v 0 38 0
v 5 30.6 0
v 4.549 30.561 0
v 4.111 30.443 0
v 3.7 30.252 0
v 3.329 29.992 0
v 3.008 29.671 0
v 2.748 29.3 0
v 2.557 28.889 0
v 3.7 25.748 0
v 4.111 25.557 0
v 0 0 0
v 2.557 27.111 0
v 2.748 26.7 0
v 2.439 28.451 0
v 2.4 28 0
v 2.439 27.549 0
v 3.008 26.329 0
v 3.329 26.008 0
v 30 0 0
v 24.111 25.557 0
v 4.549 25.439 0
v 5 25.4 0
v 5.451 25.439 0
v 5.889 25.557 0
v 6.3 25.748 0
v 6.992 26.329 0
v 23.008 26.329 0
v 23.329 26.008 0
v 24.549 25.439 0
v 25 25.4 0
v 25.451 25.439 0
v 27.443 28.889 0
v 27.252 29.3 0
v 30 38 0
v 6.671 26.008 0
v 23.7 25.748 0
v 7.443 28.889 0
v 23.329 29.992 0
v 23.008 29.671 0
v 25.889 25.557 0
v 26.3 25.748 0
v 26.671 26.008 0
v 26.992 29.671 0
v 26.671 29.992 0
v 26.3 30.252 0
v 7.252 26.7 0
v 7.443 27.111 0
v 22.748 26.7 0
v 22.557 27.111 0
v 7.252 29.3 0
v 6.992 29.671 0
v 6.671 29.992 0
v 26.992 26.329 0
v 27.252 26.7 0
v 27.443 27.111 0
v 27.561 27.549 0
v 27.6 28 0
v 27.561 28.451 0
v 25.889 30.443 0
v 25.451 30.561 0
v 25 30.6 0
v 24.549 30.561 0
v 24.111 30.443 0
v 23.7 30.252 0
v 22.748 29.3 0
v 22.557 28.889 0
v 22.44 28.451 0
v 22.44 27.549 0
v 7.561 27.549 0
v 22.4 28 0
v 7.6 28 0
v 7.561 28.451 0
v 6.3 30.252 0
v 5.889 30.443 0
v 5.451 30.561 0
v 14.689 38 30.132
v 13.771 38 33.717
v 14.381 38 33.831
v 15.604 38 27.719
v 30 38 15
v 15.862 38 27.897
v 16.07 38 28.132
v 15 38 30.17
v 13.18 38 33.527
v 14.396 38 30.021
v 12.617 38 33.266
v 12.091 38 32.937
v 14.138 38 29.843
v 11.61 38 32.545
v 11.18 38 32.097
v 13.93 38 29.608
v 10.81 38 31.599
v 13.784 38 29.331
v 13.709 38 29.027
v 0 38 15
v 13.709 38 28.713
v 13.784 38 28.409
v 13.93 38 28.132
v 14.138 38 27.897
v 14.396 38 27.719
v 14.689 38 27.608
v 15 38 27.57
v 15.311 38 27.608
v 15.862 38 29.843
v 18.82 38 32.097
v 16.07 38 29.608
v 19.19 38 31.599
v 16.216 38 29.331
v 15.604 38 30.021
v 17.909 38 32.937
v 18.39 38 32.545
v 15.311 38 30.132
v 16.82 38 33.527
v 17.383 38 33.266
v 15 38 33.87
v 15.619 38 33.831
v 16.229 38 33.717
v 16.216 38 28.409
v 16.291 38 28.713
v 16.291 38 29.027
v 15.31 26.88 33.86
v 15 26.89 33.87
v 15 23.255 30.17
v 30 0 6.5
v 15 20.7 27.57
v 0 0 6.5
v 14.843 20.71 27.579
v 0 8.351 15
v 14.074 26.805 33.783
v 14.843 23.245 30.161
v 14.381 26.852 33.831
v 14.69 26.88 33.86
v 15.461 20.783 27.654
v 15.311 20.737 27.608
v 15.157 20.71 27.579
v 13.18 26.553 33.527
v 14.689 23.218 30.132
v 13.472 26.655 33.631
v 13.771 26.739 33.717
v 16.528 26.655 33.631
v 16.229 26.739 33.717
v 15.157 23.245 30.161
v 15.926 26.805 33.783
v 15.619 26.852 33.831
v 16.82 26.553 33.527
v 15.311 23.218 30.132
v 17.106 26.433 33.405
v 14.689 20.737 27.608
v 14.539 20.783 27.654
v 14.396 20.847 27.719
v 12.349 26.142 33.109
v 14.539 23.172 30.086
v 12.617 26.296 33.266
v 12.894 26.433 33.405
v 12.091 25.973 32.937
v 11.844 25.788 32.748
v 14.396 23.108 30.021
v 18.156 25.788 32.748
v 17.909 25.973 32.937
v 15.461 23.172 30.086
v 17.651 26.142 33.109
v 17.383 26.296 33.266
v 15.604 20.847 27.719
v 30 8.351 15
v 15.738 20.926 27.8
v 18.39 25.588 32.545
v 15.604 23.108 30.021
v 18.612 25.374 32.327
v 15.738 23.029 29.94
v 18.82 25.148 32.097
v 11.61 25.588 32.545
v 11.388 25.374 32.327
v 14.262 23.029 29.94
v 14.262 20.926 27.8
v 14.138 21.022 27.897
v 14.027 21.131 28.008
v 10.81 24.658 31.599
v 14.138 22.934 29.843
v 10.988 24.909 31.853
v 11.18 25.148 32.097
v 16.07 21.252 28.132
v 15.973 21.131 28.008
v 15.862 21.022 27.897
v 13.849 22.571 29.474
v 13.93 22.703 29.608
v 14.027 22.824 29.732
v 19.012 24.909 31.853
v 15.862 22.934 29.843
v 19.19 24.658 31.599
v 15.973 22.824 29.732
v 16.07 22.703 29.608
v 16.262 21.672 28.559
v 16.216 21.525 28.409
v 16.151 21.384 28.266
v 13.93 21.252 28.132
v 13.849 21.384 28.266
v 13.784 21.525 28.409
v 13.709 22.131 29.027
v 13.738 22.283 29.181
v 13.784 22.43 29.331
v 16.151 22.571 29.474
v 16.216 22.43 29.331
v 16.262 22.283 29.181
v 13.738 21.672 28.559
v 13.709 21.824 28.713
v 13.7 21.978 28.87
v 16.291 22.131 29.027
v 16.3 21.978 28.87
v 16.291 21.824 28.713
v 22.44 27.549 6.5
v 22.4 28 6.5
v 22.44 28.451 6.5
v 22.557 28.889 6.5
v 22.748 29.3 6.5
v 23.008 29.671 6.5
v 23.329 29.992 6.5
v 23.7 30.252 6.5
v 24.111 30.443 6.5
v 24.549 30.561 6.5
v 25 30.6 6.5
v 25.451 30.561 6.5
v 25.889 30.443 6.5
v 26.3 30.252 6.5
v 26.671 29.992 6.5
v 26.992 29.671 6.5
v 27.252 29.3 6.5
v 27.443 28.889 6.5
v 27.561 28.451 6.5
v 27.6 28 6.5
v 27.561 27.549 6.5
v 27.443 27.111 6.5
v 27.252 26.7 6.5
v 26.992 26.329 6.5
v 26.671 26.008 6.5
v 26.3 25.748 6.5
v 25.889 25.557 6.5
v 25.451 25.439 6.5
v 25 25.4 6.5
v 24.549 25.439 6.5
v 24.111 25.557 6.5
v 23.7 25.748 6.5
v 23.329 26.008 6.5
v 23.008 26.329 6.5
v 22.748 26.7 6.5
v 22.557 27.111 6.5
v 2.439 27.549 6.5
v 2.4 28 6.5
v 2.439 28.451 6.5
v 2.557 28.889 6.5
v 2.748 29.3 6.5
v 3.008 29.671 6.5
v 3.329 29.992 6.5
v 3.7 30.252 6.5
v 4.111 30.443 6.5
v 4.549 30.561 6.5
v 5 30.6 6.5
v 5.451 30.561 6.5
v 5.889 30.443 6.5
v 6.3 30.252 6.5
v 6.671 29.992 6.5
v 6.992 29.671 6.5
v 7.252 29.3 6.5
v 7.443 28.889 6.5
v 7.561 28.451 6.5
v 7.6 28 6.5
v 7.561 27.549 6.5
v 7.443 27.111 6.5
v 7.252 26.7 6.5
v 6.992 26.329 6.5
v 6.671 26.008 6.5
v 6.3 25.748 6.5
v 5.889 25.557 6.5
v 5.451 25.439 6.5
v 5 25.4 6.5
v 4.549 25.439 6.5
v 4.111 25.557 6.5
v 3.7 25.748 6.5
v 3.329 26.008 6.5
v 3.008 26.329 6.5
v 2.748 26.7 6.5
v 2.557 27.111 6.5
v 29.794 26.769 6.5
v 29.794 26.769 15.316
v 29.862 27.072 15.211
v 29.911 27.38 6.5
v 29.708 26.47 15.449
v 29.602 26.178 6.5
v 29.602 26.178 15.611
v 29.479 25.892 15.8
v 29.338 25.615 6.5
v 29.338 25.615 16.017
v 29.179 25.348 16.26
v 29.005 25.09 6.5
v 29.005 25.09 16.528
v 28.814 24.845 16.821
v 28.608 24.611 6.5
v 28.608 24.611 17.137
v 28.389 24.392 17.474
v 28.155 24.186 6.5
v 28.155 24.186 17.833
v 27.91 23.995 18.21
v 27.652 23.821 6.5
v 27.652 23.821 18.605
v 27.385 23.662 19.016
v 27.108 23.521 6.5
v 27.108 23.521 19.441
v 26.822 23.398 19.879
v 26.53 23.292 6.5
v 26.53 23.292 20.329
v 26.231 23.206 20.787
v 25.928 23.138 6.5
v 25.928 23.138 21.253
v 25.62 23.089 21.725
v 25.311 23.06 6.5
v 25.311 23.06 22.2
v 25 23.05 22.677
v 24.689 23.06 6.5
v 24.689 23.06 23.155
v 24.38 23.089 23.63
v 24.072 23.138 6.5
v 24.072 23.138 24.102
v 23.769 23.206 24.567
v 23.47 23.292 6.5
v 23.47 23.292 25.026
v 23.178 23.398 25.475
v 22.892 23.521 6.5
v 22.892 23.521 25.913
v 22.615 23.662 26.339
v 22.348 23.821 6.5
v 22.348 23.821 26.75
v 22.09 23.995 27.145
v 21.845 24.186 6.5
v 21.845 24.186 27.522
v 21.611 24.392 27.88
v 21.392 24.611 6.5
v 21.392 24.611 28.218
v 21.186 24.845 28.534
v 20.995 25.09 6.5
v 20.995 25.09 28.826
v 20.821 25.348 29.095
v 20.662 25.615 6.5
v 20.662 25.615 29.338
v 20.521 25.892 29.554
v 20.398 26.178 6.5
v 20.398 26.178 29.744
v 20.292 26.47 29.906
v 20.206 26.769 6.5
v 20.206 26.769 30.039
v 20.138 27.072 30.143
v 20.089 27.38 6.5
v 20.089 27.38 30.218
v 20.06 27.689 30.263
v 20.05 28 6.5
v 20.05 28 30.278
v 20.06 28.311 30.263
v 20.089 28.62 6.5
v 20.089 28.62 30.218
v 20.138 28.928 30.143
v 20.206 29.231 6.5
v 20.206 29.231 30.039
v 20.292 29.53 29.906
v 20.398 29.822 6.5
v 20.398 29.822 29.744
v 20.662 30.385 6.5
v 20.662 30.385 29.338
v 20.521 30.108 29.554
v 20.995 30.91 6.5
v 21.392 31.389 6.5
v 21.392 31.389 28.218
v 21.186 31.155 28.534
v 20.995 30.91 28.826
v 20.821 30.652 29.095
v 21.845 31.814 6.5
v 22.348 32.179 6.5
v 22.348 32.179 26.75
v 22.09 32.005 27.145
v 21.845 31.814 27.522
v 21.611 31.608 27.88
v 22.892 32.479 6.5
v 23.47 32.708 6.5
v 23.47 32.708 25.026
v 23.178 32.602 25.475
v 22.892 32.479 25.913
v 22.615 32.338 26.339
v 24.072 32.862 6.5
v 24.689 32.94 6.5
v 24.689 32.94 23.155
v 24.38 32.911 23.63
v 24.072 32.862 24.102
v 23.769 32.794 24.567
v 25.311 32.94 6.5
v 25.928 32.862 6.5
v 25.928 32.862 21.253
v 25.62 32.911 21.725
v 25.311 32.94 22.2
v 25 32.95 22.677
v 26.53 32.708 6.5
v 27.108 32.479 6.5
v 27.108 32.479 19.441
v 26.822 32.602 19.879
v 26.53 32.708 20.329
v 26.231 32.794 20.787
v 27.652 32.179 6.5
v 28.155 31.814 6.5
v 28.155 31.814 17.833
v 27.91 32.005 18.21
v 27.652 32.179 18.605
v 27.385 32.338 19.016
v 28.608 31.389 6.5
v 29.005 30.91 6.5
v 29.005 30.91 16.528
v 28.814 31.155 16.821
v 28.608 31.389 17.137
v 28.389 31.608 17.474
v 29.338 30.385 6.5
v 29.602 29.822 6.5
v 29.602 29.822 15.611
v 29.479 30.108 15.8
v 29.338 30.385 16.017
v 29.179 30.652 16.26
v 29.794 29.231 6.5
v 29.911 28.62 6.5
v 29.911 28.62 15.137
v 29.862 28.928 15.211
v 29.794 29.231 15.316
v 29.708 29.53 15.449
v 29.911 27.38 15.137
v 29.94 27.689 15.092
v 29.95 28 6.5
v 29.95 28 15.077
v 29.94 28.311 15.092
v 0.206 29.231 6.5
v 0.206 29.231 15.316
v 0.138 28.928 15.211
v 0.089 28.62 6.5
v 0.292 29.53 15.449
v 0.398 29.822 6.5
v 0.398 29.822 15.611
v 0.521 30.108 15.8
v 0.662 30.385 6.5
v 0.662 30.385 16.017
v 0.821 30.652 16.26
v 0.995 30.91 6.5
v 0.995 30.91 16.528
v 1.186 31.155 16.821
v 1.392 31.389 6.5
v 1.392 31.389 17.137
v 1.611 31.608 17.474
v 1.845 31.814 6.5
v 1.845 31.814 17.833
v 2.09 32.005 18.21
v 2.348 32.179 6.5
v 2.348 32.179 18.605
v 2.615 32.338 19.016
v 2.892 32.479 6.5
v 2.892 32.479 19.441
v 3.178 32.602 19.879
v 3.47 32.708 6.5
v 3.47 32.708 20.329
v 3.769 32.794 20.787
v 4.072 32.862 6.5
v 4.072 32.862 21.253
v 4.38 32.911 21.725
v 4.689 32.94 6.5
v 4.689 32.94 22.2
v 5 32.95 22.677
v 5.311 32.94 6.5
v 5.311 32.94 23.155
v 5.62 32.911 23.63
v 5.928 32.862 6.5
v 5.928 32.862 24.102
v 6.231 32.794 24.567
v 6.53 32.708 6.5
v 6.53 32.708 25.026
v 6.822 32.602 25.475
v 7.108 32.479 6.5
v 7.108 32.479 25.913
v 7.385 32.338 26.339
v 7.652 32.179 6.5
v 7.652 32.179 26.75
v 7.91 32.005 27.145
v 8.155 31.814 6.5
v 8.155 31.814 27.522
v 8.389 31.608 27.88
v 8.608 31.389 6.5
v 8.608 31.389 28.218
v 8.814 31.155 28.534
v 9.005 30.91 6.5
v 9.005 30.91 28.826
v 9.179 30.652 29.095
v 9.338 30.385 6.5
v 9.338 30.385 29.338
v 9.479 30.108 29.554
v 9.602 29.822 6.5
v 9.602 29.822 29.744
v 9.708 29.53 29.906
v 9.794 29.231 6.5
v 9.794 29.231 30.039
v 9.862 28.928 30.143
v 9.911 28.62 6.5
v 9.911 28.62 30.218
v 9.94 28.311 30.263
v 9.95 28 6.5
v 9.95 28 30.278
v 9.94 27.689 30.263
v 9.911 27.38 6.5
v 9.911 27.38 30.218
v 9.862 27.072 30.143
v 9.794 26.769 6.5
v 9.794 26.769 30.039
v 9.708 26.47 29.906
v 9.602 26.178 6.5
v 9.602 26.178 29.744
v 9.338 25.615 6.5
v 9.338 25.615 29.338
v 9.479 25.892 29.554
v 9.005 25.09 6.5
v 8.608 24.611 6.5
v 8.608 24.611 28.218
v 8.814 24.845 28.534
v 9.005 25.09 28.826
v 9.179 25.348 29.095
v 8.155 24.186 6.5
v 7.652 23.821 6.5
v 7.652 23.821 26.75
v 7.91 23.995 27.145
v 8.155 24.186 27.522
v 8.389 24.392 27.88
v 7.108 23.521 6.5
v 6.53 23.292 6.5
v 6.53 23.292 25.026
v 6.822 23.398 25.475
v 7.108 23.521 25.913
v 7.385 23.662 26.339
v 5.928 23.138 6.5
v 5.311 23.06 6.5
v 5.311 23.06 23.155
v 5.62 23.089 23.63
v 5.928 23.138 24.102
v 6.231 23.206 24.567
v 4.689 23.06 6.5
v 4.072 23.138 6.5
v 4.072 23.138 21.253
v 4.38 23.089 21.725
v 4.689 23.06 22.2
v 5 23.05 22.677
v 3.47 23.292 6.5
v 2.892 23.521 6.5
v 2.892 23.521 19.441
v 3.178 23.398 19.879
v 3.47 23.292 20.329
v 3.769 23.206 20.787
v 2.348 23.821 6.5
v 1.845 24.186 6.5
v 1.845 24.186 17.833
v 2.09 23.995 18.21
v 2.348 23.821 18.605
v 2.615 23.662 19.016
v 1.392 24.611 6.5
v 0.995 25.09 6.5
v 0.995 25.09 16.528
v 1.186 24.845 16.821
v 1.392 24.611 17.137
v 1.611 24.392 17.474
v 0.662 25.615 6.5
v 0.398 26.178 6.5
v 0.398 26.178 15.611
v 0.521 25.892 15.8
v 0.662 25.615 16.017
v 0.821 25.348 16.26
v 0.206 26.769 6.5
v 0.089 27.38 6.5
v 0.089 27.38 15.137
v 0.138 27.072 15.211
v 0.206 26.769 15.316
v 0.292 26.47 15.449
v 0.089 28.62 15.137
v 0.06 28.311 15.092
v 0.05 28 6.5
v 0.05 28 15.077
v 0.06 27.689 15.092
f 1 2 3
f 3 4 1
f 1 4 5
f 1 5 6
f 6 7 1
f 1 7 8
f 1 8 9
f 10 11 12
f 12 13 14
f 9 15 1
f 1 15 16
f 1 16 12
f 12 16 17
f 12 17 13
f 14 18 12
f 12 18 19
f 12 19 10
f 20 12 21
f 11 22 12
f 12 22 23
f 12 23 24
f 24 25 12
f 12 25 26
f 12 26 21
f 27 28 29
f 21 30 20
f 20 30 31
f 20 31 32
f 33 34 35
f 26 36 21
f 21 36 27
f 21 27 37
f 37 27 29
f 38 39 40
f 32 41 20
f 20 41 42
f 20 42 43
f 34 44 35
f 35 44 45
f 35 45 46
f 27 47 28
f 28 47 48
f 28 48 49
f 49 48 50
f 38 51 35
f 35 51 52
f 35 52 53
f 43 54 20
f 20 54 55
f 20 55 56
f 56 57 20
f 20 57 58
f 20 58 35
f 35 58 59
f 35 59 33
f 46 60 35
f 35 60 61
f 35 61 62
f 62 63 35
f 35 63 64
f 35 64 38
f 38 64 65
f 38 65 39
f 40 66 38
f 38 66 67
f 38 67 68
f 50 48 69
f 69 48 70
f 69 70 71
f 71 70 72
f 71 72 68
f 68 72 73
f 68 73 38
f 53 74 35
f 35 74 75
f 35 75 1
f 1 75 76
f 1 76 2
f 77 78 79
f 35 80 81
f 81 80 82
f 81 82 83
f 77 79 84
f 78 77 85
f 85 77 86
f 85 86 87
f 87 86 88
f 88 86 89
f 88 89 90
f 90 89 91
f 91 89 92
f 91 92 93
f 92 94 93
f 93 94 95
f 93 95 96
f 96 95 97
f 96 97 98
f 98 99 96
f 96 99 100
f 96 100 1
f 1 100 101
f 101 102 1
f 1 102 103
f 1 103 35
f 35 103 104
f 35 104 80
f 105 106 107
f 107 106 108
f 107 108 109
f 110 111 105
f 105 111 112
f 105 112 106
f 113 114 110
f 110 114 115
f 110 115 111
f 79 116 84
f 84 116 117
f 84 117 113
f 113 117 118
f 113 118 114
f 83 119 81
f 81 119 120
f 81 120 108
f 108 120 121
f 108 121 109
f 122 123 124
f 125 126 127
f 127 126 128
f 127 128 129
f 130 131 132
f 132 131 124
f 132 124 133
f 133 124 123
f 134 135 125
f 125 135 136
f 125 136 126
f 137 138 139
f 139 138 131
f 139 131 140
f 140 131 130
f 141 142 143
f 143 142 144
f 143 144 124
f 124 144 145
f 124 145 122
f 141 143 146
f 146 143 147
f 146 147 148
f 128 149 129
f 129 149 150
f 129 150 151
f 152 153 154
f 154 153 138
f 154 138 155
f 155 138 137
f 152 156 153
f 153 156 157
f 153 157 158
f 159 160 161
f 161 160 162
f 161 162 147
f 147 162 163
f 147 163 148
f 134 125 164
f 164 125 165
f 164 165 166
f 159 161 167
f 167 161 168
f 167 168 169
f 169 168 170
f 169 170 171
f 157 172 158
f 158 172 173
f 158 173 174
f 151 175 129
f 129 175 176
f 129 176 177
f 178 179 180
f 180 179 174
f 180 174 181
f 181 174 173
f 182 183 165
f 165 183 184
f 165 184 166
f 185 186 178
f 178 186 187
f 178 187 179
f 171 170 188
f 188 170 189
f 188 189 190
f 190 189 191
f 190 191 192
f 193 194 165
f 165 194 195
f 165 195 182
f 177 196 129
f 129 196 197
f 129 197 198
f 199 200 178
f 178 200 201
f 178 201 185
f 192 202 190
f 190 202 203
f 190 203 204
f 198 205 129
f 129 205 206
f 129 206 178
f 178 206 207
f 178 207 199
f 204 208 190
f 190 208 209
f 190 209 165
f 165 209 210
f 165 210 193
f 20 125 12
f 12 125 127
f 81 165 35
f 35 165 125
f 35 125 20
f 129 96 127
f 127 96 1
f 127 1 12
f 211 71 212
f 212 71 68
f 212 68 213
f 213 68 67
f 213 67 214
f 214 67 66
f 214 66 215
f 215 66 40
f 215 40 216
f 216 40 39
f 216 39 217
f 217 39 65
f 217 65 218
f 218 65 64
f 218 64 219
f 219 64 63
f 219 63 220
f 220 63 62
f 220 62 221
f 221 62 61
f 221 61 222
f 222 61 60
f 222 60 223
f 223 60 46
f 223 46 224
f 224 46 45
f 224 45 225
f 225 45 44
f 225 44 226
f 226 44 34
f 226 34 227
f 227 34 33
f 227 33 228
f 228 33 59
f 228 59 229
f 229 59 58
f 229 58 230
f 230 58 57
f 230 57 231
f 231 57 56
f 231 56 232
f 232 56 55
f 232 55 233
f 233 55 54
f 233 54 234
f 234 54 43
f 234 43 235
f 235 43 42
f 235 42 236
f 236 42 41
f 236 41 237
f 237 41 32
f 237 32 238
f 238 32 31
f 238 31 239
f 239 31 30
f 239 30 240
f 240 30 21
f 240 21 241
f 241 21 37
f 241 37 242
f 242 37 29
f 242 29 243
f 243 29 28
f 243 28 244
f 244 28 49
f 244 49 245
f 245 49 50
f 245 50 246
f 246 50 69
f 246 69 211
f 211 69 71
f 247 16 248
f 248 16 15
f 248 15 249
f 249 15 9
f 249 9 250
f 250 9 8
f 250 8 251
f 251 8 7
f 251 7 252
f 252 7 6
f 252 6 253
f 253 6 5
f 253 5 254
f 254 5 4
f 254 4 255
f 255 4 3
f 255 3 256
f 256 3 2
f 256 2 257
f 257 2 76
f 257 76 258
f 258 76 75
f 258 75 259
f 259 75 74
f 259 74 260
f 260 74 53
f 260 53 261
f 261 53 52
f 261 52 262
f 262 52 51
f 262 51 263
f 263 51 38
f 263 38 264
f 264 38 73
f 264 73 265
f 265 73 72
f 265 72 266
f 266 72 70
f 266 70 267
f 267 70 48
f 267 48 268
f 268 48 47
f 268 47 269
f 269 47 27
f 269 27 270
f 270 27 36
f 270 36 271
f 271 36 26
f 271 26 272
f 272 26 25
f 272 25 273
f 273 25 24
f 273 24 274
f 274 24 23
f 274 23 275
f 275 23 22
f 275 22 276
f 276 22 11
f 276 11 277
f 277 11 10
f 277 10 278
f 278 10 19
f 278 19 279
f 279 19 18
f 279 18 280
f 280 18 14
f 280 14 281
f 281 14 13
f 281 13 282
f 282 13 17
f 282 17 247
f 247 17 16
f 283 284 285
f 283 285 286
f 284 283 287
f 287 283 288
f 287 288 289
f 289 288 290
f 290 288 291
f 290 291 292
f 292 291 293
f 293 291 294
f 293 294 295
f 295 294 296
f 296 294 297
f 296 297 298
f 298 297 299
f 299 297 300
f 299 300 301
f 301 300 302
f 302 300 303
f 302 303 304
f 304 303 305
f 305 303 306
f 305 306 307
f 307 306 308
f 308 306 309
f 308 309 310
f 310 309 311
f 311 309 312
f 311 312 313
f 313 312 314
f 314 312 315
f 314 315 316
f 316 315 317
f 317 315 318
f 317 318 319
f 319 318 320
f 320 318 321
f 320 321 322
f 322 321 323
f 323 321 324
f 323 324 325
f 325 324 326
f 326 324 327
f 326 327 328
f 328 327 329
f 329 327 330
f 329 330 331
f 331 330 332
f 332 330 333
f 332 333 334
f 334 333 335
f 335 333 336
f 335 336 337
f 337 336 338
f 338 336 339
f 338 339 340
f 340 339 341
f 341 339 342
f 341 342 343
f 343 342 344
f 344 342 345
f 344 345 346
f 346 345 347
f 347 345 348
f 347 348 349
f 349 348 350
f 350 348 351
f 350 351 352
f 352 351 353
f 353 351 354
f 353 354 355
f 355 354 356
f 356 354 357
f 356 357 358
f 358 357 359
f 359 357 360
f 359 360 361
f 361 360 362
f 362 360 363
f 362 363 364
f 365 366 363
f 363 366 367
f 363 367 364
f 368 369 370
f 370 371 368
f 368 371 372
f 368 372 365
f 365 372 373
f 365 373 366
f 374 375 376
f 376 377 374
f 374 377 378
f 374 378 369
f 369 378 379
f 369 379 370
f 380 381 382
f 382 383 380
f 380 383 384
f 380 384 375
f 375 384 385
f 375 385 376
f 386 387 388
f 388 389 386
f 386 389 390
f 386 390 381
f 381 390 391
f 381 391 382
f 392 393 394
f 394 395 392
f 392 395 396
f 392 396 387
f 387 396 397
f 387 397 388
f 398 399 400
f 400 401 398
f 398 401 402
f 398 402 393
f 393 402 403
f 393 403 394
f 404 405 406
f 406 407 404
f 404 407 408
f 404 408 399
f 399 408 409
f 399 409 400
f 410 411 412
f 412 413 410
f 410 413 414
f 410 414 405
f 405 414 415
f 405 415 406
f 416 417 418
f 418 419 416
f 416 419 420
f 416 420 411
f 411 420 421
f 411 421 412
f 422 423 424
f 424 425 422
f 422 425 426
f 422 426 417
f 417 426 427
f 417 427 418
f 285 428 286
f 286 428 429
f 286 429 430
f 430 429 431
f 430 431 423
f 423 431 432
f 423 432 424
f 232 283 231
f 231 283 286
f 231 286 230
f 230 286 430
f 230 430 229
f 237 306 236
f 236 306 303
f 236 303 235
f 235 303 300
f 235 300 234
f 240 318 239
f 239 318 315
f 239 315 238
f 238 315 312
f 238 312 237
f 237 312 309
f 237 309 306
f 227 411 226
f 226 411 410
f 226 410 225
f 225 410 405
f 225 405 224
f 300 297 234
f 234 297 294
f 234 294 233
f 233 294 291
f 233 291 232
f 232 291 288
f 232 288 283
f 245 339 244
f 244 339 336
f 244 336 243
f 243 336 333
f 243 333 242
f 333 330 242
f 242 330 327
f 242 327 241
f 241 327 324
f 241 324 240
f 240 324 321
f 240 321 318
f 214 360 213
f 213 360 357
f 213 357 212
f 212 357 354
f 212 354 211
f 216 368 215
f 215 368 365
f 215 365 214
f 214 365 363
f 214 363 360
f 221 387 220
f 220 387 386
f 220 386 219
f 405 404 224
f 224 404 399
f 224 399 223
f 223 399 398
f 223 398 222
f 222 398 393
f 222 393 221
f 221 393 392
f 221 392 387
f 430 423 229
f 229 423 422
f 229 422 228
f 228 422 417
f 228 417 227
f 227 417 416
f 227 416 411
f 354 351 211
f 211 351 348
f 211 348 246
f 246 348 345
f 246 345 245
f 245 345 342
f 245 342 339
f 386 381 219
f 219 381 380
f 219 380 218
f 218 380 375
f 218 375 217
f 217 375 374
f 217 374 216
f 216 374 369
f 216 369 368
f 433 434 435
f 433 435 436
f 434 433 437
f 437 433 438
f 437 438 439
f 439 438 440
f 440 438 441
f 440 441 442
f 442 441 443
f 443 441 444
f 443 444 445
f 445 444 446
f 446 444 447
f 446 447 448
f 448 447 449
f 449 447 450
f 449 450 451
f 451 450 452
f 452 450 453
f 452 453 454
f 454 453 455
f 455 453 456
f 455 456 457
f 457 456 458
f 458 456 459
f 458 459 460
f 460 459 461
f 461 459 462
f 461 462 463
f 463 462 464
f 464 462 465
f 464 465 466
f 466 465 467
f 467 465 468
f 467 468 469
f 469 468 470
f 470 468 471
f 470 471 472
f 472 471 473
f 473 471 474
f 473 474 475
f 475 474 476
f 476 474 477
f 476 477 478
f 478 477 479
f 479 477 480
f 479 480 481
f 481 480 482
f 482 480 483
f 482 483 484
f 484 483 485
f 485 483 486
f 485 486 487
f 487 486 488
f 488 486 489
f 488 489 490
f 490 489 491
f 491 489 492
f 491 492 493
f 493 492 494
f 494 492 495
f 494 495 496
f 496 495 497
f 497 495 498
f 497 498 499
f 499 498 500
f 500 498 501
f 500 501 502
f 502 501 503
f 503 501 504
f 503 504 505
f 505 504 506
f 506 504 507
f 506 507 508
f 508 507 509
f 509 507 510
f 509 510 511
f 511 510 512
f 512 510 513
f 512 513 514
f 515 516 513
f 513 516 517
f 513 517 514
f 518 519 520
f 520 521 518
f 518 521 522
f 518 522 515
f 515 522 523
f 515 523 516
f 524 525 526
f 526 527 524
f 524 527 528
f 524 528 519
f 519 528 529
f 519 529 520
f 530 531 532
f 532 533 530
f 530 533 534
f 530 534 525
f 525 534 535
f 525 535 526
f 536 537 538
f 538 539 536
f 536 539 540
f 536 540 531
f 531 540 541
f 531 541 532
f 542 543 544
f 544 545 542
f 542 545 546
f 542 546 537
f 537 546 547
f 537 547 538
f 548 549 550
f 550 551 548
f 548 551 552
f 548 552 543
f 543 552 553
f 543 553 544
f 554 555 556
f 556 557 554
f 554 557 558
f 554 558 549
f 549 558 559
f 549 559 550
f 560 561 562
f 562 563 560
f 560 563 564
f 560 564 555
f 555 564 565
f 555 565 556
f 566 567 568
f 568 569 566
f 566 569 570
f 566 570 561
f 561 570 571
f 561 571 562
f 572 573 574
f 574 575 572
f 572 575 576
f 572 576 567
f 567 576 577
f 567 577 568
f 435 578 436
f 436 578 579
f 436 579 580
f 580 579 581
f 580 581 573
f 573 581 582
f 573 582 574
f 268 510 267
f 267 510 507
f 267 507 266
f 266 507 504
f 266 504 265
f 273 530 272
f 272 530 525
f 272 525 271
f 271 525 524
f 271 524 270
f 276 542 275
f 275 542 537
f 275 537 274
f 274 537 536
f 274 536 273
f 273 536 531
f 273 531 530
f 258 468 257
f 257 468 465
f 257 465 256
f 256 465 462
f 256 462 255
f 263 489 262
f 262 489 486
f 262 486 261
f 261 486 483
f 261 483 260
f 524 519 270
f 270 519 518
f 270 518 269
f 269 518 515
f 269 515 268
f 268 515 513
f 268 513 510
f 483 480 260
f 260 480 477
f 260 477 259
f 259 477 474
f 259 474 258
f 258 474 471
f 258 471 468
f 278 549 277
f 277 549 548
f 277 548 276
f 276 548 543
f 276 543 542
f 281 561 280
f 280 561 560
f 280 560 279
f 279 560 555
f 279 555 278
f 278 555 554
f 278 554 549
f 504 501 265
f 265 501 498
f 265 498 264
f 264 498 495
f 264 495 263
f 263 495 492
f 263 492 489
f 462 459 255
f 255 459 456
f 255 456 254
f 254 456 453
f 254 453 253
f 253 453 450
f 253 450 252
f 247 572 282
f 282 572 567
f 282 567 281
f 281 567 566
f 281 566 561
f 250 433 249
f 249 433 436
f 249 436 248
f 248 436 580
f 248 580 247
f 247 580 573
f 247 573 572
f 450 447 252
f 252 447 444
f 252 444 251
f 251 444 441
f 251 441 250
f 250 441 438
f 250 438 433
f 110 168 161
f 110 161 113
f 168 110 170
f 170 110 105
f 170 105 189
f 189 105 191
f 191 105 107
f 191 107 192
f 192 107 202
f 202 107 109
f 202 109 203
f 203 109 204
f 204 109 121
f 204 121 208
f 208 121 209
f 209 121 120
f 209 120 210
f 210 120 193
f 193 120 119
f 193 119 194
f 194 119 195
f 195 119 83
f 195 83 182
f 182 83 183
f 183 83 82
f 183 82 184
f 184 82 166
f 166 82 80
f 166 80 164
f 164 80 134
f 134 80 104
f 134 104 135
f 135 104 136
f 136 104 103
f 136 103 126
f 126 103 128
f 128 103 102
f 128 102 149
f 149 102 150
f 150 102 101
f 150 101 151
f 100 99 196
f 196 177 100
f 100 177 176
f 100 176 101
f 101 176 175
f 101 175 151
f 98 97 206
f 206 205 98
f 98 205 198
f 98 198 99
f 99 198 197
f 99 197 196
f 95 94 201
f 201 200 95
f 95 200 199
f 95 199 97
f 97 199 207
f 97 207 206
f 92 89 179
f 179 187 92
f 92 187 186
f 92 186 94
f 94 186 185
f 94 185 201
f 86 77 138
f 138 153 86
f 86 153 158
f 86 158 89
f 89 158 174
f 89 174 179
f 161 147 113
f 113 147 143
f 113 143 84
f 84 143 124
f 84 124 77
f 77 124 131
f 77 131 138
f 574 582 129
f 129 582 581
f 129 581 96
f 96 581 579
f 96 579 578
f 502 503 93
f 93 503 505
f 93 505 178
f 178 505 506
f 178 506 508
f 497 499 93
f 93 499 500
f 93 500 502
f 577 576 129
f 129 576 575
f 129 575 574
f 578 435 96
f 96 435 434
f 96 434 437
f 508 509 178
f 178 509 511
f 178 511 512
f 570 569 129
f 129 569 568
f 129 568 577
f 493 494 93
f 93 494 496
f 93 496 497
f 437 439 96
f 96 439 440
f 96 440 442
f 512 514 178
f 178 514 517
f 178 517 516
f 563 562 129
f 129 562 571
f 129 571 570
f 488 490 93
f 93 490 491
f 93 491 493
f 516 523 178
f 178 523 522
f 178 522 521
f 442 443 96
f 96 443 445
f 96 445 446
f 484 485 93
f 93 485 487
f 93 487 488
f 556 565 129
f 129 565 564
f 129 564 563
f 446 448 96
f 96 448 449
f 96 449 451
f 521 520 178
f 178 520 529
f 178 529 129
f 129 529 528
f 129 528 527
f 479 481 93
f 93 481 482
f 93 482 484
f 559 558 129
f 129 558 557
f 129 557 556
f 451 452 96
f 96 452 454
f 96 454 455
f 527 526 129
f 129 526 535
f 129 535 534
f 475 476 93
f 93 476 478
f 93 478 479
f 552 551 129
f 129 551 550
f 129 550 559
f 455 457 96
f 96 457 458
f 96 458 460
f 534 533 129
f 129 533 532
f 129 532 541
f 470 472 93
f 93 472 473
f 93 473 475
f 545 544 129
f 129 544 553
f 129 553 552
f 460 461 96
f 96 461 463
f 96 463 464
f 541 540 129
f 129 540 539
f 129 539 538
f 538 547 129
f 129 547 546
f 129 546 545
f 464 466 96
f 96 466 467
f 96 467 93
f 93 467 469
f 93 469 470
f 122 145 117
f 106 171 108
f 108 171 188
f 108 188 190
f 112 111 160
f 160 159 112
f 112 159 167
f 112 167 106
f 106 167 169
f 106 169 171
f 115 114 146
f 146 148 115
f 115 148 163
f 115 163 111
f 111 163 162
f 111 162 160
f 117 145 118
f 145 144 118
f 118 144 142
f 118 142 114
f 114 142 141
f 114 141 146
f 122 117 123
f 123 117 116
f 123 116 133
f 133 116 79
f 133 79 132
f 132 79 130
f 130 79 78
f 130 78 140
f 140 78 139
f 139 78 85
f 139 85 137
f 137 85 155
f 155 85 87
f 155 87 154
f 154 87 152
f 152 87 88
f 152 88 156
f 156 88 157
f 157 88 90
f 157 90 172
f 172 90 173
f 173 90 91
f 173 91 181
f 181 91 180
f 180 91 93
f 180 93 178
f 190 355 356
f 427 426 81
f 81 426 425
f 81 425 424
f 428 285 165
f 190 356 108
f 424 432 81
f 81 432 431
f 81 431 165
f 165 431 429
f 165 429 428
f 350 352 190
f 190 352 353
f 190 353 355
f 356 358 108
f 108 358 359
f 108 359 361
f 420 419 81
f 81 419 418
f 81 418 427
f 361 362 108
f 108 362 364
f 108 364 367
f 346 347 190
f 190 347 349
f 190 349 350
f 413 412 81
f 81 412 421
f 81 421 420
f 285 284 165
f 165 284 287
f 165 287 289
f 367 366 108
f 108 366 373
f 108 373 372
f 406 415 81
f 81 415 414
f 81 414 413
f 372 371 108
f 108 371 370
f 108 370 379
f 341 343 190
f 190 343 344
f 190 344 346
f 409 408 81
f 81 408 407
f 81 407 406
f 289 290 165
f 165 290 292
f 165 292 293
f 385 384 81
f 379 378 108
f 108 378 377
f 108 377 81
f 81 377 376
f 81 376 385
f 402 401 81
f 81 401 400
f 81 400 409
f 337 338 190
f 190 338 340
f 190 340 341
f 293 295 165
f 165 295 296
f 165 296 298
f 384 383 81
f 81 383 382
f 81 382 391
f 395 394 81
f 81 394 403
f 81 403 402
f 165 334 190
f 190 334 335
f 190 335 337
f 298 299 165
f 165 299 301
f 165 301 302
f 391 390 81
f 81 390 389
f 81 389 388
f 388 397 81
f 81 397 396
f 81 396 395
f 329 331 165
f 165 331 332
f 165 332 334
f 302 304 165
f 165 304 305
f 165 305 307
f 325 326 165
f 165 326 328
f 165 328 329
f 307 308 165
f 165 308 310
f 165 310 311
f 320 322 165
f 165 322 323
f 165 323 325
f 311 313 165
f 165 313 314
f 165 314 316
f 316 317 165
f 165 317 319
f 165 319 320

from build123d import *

# Parameters (mm, degrees)
BOSS_EXTRUDE1_DEPTH = 30
CUT_EXTRUDE1_REACH  = 37
SKETCH3_R           = 2.6
CUT_EXTRUDE2_REACH  = 43.5
CUT_EXTRUDE2_START  = -6.5
SKETCH4_R           = 4.95
CUT_EXTRUDE3_REACH  = 40
SKETCH5_R           = 1.3
CUT_EXTRUDE4_REACH  = 40


with BuildPart() as part:
    # Sketch2 → Boss-Extrude1 (new body)
    with BuildSketch(Plane(origin=(0, 0, 0), x_dir=(0, 0, -1), z_dir=(1, 0, 0))):
        Polygon((0, 0), (-6.5, 0), (-35, 28), (-35, 38), (0, 38), align=None)
    extrude(amount=BOSS_EXTRUDE1_DEPTH)

    # Sketch3 → Cut-Extrude1 (cut, up to next)
    with BuildSketch(Plane(origin=(0, 0, 0), x_dir=(-1, 0, 0), z_dir=(0, 0, -1)), mode=Mode.PRIVATE) as cut_extrude1_sk1:
        with Locations((-25, 28)):
            Circle(SKETCH3_R)
    cut_extrude1_tool1 = extrude(cut_extrude1_sk1.sketch, amount=-CUT_EXTRUDE1_REACH, mode=Mode.PRIVATE) & part.part
    add(cut_extrude1_tool1.solids().sort_by_distance((25, 28, 0))[0], mode=Mode.SUBTRACT)
    # Sketch3 → Cut-Extrude1 (cut, up to next)
    with BuildSketch(Plane(origin=(0, 0, 0), x_dir=(-1, 0, 0), z_dir=(0, 0, -1)), mode=Mode.PRIVATE) as cut_extrude1_sk2:
        with Locations((-5, 28)):
            Circle(SKETCH3_R)
    cut_extrude1_tool2 = extrude(cut_extrude1_sk2.sketch, amount=-CUT_EXTRUDE1_REACH, mode=Mode.PRIVATE) & part.part
    add(cut_extrude1_tool2.solids().sort_by_distance((5, 28, 0))[0], mode=Mode.SUBTRACT)

    # Sketch4 → Cut-Extrude2 (cut, up to next)
    with BuildSketch(Plane(origin=(0, 0, 0), x_dir=(-1, 0, 0), z_dir=(0, 0, -1)).offset(CUT_EXTRUDE2_START), mode=Mode.PRIVATE) as cut_extrude2_sk1:
        with Locations((-25, 28)):
            Circle(SKETCH4_R)
    cut_extrude2_tool1 = extrude(cut_extrude2_sk1.sketch, amount=-CUT_EXTRUDE2_REACH, mode=Mode.PRIVATE) & part.part
    add(cut_extrude2_tool1.solids().sort_by_distance((25, 28, 6.5))[0], mode=Mode.SUBTRACT)
    # Sketch4 → Cut-Extrude2 (cut, up to next)
    with BuildSketch(Plane(origin=(0, 0, 0), x_dir=(-1, 0, 0), z_dir=(0, 0, -1)).offset(CUT_EXTRUDE2_START), mode=Mode.PRIVATE) as cut_extrude2_sk2:
        with Locations((-5, 28)):
            Circle(SKETCH4_R)
    cut_extrude2_tool2 = extrude(cut_extrude2_sk2.sketch, amount=-CUT_EXTRUDE2_REACH, mode=Mode.PRIVATE) & part.part
    add(cut_extrude2_tool2.solids().sort_by_distance((5, 28, 6.5))[0], mode=Mode.SUBTRACT)

    # Sketch5 → Cut-Extrude3 (cut, up to next)
    with BuildSketch(Plane(origin=(0, 38, 0), x_dir=(1, 0, 0), z_dir=(0, 1, 0)), mode=Mode.PRIVATE) as cut_extrude3_sk1:
        with Locations((15, -28.87)):
            Circle(SKETCH5_R)
    cut_extrude3_tool1 = extrude(cut_extrude3_sk1.sketch, amount=-CUT_EXTRUDE3_REACH, mode=Mode.PRIVATE) & part.part
    add(cut_extrude3_tool1.solids().sort_by_distance((15, 38, 28.87))[0], mode=Mode.SUBTRACT)

    # Sketch6 → Cut-Extrude4 (cut, up to next)
    with BuildSketch(Plane(origin=(0, 38, 0), x_dir=(1, 0, 0), z_dir=(0, 1, 0)), mode=Mode.PRIVATE) as cut_extrude4_sk1:
        with BuildLine():
            Line((0, -35), (30, -35))
            Line((30, -35), (30, -15))
            Line((30, -15), (19.189785955, -31.598679836))
            ThreePointArc((19.189785955, -31.598679836), (15, -33.87), (10.810214045, -31.598679836))
            Line((10.810214045, -31.598679836), (0, -15))
            Line((0, -15), (0, -35))
        make_face()
    cut_extrude4_tool1 = extrude(cut_extrude4_sk1.sketch, amount=-CUT_EXTRUDE4_REACH, mode=Mode.PRIVATE) & part.part
    add(cut_extrude4_tool1.solids().sort_by_distance((15, 38, 34.639445))[0], mode=Mode.SUBTRACT)


solid = part.part
